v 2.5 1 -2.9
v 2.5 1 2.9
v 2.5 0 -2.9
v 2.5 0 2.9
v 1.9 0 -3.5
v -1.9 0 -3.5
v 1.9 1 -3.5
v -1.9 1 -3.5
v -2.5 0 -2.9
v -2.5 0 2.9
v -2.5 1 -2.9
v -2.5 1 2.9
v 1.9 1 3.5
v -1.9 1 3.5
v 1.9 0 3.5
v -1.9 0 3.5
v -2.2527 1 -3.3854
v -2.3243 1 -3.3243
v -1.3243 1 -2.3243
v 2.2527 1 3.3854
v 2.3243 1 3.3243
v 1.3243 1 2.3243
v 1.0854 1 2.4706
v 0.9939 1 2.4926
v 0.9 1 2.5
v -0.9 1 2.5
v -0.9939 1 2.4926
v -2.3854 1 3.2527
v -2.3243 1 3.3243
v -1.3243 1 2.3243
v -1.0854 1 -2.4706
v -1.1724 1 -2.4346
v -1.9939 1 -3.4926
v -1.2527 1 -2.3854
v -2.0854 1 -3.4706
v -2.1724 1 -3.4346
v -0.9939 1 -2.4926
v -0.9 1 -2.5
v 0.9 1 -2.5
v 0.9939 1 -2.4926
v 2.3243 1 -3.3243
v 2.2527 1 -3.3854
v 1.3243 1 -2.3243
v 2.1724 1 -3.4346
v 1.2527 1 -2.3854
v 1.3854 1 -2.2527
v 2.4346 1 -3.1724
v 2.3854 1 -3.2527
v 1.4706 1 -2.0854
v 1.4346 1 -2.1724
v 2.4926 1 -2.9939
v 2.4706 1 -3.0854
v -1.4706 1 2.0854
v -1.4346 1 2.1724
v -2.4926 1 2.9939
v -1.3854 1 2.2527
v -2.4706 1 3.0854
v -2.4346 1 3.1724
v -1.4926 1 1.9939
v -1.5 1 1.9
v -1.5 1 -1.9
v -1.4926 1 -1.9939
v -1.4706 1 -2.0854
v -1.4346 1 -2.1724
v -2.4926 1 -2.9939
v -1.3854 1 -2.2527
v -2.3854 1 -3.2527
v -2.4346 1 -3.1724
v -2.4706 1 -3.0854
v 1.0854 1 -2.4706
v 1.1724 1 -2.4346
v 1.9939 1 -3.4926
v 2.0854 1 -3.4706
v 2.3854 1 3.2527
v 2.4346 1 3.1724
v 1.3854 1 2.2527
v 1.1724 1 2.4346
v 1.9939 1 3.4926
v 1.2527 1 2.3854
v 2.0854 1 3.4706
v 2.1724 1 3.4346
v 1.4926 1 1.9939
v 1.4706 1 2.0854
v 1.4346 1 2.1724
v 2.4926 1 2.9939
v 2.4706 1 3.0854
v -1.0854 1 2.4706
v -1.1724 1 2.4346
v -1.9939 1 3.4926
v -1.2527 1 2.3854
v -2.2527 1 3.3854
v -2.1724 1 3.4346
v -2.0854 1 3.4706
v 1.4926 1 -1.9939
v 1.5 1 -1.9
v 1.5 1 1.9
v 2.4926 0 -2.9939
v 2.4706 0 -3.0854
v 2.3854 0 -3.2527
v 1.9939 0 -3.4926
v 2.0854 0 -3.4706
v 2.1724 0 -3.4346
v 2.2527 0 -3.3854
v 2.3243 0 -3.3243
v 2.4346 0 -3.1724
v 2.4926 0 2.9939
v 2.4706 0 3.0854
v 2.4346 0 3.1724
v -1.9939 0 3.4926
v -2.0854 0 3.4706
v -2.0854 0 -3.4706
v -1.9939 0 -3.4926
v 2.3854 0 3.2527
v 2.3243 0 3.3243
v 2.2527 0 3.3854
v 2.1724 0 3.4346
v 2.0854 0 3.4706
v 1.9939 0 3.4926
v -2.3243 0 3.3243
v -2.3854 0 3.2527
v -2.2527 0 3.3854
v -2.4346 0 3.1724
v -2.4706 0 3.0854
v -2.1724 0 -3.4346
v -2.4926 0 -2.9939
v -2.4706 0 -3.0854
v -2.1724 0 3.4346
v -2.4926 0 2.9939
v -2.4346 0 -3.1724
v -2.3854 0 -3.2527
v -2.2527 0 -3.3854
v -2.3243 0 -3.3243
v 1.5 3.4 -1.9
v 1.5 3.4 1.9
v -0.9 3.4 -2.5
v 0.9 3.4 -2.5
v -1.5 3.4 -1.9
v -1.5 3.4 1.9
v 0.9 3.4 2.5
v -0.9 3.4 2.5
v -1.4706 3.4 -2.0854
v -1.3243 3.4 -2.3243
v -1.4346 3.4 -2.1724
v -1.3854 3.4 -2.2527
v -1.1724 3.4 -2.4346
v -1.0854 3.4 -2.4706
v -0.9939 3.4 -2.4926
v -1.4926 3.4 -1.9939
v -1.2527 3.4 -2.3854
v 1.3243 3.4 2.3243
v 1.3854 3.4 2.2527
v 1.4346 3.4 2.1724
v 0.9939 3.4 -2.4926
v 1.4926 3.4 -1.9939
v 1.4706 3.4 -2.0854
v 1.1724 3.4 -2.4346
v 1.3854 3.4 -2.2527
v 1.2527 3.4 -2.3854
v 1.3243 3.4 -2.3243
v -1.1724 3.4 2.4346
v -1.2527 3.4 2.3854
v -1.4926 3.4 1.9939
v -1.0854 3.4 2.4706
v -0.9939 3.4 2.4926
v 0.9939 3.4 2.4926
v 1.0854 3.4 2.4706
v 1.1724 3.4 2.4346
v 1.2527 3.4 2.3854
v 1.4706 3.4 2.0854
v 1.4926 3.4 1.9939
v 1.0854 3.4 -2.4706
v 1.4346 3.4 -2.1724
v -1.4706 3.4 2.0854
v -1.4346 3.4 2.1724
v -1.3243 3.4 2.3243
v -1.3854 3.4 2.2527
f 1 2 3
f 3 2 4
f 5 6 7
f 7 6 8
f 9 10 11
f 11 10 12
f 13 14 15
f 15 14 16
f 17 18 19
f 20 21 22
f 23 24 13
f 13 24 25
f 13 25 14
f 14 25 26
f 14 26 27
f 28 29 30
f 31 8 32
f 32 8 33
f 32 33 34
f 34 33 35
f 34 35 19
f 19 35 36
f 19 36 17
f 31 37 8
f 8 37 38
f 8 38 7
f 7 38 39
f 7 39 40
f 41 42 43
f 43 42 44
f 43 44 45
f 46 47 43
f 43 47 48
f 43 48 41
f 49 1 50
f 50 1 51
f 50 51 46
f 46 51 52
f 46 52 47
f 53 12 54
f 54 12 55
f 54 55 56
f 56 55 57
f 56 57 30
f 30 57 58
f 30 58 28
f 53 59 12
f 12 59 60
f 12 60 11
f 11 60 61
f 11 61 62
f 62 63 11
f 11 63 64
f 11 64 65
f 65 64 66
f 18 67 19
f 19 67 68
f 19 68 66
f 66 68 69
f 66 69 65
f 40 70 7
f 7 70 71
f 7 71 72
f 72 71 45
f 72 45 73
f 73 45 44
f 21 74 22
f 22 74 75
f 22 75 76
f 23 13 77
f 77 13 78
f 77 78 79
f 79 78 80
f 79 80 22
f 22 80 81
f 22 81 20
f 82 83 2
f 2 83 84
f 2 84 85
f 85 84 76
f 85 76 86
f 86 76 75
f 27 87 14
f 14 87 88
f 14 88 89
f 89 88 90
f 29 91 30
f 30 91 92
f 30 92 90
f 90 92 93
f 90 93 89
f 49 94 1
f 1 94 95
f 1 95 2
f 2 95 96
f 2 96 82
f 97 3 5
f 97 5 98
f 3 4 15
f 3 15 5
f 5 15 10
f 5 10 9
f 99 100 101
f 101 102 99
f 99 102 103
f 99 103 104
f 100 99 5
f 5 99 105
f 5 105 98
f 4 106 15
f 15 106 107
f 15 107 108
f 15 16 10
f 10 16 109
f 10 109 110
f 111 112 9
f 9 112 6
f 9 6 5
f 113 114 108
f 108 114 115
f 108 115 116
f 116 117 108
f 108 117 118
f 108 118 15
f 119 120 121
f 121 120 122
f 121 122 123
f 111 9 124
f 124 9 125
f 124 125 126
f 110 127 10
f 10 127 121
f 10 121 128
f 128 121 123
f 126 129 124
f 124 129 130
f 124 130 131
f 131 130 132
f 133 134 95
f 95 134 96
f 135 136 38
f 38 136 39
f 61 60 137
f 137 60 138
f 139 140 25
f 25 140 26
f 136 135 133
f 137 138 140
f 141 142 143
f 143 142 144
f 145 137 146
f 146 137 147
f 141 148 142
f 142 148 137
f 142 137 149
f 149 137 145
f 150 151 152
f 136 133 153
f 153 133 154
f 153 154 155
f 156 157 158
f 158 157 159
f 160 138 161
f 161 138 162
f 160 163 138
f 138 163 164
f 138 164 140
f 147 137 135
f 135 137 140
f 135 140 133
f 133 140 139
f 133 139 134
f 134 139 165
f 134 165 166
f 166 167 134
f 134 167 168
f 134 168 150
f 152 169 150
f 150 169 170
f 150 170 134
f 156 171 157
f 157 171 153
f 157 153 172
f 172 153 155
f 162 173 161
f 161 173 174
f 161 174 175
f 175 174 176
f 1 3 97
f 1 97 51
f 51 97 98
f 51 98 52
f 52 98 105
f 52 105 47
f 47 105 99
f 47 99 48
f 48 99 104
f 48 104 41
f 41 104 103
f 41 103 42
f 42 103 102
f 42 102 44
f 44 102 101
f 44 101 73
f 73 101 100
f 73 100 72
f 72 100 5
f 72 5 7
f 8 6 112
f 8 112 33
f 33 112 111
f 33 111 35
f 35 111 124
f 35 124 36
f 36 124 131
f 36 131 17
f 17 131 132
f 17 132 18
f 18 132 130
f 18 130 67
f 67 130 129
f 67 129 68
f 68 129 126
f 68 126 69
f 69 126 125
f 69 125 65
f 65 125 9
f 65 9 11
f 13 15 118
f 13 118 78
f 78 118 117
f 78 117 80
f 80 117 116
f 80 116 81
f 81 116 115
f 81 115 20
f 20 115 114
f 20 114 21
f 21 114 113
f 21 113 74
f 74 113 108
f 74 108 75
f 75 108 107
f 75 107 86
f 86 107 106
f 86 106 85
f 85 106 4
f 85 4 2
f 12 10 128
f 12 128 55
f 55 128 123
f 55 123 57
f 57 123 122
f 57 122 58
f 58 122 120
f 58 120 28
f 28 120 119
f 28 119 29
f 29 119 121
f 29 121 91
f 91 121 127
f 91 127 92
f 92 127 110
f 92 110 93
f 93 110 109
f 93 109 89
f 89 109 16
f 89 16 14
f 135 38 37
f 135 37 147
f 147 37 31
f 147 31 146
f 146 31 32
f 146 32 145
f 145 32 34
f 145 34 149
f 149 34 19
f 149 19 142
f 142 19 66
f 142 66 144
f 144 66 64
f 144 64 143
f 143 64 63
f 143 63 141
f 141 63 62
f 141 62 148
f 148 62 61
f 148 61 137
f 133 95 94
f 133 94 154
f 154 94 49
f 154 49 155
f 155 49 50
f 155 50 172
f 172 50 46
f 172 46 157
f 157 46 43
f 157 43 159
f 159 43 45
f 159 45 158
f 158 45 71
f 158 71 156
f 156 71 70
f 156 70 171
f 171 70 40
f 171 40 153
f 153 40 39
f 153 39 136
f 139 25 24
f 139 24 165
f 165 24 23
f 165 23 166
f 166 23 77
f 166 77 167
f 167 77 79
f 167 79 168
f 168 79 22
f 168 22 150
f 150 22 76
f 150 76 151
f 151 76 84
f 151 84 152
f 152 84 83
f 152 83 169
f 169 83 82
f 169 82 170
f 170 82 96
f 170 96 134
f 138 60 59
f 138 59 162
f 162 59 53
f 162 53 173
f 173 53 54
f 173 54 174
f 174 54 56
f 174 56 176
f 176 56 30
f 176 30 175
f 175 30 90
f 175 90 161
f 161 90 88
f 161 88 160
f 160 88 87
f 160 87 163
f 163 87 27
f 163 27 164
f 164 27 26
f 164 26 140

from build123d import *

# Parameters (mm, degrees)
SKETCH_1_W      = 5
SKETCH_1_H      = 7
EXTRUDE_1_DEPTH = 1
SKETCH_2_W      = 3
SKETCH_2_H      = 5
EXTRUDE_2_DEPTH = 2.4
FILLET_1_R      = 0.6


with BuildPart() as part:
    # 草图1 → 凸台-拉伸1 (new body)
    with BuildSketch(Plane(origin=(0, 0, 0), x_dir=(1, 0, 0), z_dir=(0, 1, 0))):
        Rectangle(SKETCH_1_W, SKETCH_1_H)
    extrude(amount=EXTRUDE_1_DEPTH)

    # 草图2 → 凸台-拉伸2 (add)
    with BuildSketch(Plane(origin=(0, 1, 0), x_dir=(1, 0, 0), z_dir=(0, 1, 0))):
        Rectangle(SKETCH_2_W, SKETCH_2_H)
    extrude(amount=EXTRUDE_2_DEPTH)

    # 圆角1
    fillet_1_edges = [part.edges().sort_by_distance(p)[0] for p in [
        (1.5, 2.2, 2.5),
        (1.5, 2.2, -2.5),
        (-1.5, 2.2, -2.5),
        (-1.5, 2.2, 2.5),
        (2.5, 0.5, 3.5),
        (-2.5, 0.5, 3.5),
        (-2.5, 0.5, -3.5),
        (2.5, 0.5, -3.5),
    ]]
    fillet(fillet_1_edges, radius=FILLET_1_R)


solid = part.part
